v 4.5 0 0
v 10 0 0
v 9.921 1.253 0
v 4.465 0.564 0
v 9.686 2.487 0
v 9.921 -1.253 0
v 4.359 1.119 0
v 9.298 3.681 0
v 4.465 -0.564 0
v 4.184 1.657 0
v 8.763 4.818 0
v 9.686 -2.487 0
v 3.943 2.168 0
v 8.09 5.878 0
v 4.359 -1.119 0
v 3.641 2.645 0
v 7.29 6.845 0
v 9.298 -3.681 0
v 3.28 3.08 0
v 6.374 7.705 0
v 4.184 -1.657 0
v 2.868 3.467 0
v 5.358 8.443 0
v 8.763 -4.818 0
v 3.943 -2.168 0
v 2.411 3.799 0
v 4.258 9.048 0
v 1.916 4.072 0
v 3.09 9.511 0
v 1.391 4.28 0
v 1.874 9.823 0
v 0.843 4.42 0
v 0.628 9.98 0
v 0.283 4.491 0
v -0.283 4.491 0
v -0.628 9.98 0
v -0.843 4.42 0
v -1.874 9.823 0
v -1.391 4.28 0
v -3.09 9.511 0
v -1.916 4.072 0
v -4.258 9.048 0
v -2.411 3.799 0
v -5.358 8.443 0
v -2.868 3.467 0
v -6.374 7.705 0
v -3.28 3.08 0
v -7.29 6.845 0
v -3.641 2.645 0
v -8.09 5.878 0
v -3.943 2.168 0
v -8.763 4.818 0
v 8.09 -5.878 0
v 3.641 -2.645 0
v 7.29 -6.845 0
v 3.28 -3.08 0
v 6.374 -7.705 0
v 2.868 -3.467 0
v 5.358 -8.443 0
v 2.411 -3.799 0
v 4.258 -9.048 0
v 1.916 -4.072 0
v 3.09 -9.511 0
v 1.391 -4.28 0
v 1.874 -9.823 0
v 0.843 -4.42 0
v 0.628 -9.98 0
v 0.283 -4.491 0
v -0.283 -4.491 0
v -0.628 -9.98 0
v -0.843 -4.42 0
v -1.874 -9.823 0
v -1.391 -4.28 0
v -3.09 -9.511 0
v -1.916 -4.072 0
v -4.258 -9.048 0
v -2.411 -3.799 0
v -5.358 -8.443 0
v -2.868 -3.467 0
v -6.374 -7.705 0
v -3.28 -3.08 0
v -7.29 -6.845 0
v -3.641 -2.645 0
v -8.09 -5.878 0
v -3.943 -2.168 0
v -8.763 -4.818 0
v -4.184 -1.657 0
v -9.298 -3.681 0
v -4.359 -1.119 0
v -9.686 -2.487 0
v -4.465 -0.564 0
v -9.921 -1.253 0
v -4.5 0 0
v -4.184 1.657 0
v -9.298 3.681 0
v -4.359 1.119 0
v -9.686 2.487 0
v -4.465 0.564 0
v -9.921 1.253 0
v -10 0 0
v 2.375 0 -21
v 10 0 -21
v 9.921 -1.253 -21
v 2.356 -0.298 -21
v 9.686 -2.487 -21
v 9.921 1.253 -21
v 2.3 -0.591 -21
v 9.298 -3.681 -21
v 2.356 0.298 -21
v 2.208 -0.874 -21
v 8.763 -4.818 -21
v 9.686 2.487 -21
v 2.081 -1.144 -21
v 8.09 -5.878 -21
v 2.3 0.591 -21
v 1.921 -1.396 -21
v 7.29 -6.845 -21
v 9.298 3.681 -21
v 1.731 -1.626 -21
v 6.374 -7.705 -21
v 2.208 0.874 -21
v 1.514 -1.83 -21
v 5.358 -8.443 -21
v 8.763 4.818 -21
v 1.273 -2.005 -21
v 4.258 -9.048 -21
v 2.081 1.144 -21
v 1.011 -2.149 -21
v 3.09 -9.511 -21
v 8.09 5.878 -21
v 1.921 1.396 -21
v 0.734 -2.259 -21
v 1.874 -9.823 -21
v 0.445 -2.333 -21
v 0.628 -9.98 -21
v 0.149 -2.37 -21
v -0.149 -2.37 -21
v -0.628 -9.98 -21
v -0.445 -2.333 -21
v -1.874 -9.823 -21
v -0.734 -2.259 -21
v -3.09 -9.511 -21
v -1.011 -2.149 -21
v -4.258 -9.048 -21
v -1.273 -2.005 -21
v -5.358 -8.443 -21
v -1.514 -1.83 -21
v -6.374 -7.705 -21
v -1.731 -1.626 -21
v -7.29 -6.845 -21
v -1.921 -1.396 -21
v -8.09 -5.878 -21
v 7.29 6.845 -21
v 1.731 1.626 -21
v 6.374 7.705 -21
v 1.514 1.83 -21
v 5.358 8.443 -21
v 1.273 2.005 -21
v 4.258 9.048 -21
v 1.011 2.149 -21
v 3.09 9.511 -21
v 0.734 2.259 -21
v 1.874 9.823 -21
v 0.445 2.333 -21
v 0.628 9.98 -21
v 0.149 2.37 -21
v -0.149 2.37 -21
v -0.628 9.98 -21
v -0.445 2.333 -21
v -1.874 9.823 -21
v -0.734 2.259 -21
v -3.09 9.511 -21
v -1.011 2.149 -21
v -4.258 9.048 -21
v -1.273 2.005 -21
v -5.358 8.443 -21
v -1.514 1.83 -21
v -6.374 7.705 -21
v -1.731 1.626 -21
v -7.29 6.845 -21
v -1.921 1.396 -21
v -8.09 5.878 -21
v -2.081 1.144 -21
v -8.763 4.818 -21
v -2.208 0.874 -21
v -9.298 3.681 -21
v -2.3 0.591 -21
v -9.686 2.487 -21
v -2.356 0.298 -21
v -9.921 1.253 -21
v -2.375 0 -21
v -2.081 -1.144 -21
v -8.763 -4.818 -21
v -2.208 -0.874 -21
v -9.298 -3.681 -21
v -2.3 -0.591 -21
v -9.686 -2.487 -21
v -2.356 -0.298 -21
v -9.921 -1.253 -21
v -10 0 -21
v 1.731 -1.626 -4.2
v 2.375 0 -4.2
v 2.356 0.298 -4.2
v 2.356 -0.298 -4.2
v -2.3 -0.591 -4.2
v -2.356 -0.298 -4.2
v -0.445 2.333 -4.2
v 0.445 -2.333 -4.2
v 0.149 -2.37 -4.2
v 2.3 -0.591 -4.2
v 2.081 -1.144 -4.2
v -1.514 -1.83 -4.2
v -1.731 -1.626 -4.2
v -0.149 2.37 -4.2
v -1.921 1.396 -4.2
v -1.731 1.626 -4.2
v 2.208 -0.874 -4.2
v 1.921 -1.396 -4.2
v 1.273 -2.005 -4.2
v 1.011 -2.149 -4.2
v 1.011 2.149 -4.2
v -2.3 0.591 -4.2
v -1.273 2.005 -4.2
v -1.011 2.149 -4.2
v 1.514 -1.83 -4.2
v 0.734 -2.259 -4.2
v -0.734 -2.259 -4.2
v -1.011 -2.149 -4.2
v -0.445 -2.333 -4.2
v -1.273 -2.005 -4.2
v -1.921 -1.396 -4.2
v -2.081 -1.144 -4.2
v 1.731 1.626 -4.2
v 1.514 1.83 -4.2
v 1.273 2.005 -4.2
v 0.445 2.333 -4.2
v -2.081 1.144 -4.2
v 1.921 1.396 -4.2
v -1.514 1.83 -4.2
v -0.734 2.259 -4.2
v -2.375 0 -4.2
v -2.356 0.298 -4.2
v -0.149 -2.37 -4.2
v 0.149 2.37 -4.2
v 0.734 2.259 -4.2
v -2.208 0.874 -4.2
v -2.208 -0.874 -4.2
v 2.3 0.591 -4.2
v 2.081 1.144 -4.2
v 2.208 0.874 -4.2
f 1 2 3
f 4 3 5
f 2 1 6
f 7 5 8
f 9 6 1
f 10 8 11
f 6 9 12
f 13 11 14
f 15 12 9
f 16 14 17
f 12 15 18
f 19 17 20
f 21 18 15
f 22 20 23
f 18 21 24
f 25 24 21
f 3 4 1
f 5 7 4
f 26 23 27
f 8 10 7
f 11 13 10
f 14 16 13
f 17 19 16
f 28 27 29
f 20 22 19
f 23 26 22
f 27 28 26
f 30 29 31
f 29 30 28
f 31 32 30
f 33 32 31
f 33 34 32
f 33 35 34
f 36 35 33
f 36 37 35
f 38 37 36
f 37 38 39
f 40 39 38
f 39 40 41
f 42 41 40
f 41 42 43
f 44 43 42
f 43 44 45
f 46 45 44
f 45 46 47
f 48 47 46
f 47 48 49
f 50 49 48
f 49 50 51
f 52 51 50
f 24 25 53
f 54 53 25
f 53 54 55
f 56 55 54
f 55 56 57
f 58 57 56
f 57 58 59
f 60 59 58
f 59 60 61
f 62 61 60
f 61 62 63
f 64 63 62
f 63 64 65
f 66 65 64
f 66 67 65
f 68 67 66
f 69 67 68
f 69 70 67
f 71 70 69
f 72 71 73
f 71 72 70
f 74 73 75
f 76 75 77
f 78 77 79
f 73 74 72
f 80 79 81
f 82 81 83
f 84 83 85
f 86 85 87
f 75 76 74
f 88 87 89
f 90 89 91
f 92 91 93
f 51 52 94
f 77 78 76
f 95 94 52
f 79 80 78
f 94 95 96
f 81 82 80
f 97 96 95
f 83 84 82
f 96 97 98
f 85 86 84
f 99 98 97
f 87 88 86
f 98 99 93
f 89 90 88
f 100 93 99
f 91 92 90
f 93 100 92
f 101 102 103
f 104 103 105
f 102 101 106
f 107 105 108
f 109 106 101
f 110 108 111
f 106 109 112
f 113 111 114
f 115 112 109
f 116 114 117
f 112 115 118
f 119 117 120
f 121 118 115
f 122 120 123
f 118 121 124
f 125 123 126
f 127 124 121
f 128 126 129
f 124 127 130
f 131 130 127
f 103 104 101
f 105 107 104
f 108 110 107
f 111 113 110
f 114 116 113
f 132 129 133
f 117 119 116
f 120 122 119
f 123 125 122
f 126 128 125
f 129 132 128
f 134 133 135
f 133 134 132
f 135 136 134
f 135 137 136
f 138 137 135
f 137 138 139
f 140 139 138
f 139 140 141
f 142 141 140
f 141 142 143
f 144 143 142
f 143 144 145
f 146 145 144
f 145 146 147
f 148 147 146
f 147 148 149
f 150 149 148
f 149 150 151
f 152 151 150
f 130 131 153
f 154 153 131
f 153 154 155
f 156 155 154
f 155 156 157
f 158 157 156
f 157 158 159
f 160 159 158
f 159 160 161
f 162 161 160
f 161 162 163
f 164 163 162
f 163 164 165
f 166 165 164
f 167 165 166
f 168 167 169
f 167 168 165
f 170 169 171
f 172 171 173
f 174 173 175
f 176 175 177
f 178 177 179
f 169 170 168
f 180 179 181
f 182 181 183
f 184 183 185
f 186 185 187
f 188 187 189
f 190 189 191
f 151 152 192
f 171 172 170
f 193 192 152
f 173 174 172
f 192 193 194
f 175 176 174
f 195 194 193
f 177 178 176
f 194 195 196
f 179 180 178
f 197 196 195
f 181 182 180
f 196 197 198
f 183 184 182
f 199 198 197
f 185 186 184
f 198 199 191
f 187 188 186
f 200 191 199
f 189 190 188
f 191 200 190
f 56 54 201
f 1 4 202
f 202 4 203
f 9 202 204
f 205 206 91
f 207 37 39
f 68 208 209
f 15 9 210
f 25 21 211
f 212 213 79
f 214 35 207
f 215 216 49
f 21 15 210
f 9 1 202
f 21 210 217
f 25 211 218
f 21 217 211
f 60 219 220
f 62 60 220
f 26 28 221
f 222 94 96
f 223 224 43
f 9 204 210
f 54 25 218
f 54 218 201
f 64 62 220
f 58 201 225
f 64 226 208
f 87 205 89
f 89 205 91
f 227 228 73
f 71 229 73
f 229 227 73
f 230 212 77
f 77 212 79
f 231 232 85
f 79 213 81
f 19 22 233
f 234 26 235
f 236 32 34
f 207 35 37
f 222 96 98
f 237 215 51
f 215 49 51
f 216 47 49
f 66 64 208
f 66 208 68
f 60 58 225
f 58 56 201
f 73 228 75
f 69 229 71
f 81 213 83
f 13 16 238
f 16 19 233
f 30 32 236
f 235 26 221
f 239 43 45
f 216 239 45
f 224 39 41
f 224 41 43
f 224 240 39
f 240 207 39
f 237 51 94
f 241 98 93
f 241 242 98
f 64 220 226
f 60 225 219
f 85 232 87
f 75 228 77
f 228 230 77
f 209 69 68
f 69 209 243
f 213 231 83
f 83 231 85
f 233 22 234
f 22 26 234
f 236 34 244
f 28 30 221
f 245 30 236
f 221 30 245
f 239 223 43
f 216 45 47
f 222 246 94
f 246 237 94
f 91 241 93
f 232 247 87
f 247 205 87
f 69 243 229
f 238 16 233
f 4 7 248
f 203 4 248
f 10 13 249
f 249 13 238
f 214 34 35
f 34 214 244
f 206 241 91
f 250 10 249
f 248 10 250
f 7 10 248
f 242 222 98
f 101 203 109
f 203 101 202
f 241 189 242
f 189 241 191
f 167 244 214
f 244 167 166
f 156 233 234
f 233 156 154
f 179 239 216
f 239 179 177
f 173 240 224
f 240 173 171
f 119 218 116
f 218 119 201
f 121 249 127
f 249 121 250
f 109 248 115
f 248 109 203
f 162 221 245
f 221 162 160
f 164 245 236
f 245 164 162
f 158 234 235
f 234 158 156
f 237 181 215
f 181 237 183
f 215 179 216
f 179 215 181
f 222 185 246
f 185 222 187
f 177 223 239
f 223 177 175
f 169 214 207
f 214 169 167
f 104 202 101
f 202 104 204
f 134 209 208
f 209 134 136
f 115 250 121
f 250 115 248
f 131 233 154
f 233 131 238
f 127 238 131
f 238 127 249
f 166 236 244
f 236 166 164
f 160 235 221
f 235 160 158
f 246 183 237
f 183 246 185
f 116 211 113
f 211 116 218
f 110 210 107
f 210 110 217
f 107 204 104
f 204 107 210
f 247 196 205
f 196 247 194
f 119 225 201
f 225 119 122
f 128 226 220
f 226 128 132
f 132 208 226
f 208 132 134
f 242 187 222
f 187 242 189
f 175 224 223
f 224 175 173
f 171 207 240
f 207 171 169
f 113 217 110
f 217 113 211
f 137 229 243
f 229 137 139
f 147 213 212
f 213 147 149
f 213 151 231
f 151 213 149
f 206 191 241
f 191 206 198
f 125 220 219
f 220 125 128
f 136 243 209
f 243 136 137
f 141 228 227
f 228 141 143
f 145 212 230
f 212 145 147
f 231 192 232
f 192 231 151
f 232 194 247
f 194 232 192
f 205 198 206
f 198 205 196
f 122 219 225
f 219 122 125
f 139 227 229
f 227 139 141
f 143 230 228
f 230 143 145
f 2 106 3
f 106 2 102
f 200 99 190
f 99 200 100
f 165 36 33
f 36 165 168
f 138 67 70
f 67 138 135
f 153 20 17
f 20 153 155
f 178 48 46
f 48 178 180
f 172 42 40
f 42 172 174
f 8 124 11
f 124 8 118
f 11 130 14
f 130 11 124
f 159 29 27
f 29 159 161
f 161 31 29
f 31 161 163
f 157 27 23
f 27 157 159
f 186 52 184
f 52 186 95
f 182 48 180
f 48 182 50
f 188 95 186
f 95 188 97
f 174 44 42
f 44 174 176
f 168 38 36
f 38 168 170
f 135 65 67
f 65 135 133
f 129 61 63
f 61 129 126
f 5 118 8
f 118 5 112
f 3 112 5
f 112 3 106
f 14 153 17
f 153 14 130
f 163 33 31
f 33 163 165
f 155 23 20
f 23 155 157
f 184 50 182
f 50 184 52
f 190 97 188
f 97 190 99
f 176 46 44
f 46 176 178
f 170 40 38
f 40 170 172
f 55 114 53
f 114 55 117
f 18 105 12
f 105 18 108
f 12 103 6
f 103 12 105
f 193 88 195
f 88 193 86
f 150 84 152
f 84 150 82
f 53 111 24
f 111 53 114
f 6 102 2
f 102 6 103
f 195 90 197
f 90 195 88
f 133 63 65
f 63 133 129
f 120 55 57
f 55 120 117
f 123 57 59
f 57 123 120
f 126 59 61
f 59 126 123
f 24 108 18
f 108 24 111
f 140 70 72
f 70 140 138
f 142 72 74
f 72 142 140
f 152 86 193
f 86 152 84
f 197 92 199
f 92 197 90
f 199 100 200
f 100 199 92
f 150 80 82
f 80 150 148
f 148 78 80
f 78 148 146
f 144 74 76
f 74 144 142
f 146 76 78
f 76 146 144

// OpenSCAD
$fn = 50;


difference() {
	union() {
		translate(v = [0, 0, -21.0000000000]) {
			cylinder(h = 21, r = 10.0000000000);
		}
	}
	union() {
		translate(v = [0, 0, 0]) {
			rotate(a = [0, 0, 0]) {
				difference() {
					union() {
						#translate(v = [0, 0, -21.0000000000]) {
							cylinder(h = 21, r = 2.2500000000);
						}
						#translate(v = [0, 0, -4.2000000000]) {
							cylinder(h = 4.2000000000, r = 10.0000000000, r1 = 2.3750000000, r2 = 4.5000000000);
						}
						#translate(v = [0, 0, -21.0000000000]) {
							cylinder(h = 21, r = 2.3750000000);
						}
						#translate(v = [0, 0, -21.0000000000]) {
							cylinder(h = 21, r = 2.2500000000);
						}
					}
					union();
				}
			}
		}
	}
}
